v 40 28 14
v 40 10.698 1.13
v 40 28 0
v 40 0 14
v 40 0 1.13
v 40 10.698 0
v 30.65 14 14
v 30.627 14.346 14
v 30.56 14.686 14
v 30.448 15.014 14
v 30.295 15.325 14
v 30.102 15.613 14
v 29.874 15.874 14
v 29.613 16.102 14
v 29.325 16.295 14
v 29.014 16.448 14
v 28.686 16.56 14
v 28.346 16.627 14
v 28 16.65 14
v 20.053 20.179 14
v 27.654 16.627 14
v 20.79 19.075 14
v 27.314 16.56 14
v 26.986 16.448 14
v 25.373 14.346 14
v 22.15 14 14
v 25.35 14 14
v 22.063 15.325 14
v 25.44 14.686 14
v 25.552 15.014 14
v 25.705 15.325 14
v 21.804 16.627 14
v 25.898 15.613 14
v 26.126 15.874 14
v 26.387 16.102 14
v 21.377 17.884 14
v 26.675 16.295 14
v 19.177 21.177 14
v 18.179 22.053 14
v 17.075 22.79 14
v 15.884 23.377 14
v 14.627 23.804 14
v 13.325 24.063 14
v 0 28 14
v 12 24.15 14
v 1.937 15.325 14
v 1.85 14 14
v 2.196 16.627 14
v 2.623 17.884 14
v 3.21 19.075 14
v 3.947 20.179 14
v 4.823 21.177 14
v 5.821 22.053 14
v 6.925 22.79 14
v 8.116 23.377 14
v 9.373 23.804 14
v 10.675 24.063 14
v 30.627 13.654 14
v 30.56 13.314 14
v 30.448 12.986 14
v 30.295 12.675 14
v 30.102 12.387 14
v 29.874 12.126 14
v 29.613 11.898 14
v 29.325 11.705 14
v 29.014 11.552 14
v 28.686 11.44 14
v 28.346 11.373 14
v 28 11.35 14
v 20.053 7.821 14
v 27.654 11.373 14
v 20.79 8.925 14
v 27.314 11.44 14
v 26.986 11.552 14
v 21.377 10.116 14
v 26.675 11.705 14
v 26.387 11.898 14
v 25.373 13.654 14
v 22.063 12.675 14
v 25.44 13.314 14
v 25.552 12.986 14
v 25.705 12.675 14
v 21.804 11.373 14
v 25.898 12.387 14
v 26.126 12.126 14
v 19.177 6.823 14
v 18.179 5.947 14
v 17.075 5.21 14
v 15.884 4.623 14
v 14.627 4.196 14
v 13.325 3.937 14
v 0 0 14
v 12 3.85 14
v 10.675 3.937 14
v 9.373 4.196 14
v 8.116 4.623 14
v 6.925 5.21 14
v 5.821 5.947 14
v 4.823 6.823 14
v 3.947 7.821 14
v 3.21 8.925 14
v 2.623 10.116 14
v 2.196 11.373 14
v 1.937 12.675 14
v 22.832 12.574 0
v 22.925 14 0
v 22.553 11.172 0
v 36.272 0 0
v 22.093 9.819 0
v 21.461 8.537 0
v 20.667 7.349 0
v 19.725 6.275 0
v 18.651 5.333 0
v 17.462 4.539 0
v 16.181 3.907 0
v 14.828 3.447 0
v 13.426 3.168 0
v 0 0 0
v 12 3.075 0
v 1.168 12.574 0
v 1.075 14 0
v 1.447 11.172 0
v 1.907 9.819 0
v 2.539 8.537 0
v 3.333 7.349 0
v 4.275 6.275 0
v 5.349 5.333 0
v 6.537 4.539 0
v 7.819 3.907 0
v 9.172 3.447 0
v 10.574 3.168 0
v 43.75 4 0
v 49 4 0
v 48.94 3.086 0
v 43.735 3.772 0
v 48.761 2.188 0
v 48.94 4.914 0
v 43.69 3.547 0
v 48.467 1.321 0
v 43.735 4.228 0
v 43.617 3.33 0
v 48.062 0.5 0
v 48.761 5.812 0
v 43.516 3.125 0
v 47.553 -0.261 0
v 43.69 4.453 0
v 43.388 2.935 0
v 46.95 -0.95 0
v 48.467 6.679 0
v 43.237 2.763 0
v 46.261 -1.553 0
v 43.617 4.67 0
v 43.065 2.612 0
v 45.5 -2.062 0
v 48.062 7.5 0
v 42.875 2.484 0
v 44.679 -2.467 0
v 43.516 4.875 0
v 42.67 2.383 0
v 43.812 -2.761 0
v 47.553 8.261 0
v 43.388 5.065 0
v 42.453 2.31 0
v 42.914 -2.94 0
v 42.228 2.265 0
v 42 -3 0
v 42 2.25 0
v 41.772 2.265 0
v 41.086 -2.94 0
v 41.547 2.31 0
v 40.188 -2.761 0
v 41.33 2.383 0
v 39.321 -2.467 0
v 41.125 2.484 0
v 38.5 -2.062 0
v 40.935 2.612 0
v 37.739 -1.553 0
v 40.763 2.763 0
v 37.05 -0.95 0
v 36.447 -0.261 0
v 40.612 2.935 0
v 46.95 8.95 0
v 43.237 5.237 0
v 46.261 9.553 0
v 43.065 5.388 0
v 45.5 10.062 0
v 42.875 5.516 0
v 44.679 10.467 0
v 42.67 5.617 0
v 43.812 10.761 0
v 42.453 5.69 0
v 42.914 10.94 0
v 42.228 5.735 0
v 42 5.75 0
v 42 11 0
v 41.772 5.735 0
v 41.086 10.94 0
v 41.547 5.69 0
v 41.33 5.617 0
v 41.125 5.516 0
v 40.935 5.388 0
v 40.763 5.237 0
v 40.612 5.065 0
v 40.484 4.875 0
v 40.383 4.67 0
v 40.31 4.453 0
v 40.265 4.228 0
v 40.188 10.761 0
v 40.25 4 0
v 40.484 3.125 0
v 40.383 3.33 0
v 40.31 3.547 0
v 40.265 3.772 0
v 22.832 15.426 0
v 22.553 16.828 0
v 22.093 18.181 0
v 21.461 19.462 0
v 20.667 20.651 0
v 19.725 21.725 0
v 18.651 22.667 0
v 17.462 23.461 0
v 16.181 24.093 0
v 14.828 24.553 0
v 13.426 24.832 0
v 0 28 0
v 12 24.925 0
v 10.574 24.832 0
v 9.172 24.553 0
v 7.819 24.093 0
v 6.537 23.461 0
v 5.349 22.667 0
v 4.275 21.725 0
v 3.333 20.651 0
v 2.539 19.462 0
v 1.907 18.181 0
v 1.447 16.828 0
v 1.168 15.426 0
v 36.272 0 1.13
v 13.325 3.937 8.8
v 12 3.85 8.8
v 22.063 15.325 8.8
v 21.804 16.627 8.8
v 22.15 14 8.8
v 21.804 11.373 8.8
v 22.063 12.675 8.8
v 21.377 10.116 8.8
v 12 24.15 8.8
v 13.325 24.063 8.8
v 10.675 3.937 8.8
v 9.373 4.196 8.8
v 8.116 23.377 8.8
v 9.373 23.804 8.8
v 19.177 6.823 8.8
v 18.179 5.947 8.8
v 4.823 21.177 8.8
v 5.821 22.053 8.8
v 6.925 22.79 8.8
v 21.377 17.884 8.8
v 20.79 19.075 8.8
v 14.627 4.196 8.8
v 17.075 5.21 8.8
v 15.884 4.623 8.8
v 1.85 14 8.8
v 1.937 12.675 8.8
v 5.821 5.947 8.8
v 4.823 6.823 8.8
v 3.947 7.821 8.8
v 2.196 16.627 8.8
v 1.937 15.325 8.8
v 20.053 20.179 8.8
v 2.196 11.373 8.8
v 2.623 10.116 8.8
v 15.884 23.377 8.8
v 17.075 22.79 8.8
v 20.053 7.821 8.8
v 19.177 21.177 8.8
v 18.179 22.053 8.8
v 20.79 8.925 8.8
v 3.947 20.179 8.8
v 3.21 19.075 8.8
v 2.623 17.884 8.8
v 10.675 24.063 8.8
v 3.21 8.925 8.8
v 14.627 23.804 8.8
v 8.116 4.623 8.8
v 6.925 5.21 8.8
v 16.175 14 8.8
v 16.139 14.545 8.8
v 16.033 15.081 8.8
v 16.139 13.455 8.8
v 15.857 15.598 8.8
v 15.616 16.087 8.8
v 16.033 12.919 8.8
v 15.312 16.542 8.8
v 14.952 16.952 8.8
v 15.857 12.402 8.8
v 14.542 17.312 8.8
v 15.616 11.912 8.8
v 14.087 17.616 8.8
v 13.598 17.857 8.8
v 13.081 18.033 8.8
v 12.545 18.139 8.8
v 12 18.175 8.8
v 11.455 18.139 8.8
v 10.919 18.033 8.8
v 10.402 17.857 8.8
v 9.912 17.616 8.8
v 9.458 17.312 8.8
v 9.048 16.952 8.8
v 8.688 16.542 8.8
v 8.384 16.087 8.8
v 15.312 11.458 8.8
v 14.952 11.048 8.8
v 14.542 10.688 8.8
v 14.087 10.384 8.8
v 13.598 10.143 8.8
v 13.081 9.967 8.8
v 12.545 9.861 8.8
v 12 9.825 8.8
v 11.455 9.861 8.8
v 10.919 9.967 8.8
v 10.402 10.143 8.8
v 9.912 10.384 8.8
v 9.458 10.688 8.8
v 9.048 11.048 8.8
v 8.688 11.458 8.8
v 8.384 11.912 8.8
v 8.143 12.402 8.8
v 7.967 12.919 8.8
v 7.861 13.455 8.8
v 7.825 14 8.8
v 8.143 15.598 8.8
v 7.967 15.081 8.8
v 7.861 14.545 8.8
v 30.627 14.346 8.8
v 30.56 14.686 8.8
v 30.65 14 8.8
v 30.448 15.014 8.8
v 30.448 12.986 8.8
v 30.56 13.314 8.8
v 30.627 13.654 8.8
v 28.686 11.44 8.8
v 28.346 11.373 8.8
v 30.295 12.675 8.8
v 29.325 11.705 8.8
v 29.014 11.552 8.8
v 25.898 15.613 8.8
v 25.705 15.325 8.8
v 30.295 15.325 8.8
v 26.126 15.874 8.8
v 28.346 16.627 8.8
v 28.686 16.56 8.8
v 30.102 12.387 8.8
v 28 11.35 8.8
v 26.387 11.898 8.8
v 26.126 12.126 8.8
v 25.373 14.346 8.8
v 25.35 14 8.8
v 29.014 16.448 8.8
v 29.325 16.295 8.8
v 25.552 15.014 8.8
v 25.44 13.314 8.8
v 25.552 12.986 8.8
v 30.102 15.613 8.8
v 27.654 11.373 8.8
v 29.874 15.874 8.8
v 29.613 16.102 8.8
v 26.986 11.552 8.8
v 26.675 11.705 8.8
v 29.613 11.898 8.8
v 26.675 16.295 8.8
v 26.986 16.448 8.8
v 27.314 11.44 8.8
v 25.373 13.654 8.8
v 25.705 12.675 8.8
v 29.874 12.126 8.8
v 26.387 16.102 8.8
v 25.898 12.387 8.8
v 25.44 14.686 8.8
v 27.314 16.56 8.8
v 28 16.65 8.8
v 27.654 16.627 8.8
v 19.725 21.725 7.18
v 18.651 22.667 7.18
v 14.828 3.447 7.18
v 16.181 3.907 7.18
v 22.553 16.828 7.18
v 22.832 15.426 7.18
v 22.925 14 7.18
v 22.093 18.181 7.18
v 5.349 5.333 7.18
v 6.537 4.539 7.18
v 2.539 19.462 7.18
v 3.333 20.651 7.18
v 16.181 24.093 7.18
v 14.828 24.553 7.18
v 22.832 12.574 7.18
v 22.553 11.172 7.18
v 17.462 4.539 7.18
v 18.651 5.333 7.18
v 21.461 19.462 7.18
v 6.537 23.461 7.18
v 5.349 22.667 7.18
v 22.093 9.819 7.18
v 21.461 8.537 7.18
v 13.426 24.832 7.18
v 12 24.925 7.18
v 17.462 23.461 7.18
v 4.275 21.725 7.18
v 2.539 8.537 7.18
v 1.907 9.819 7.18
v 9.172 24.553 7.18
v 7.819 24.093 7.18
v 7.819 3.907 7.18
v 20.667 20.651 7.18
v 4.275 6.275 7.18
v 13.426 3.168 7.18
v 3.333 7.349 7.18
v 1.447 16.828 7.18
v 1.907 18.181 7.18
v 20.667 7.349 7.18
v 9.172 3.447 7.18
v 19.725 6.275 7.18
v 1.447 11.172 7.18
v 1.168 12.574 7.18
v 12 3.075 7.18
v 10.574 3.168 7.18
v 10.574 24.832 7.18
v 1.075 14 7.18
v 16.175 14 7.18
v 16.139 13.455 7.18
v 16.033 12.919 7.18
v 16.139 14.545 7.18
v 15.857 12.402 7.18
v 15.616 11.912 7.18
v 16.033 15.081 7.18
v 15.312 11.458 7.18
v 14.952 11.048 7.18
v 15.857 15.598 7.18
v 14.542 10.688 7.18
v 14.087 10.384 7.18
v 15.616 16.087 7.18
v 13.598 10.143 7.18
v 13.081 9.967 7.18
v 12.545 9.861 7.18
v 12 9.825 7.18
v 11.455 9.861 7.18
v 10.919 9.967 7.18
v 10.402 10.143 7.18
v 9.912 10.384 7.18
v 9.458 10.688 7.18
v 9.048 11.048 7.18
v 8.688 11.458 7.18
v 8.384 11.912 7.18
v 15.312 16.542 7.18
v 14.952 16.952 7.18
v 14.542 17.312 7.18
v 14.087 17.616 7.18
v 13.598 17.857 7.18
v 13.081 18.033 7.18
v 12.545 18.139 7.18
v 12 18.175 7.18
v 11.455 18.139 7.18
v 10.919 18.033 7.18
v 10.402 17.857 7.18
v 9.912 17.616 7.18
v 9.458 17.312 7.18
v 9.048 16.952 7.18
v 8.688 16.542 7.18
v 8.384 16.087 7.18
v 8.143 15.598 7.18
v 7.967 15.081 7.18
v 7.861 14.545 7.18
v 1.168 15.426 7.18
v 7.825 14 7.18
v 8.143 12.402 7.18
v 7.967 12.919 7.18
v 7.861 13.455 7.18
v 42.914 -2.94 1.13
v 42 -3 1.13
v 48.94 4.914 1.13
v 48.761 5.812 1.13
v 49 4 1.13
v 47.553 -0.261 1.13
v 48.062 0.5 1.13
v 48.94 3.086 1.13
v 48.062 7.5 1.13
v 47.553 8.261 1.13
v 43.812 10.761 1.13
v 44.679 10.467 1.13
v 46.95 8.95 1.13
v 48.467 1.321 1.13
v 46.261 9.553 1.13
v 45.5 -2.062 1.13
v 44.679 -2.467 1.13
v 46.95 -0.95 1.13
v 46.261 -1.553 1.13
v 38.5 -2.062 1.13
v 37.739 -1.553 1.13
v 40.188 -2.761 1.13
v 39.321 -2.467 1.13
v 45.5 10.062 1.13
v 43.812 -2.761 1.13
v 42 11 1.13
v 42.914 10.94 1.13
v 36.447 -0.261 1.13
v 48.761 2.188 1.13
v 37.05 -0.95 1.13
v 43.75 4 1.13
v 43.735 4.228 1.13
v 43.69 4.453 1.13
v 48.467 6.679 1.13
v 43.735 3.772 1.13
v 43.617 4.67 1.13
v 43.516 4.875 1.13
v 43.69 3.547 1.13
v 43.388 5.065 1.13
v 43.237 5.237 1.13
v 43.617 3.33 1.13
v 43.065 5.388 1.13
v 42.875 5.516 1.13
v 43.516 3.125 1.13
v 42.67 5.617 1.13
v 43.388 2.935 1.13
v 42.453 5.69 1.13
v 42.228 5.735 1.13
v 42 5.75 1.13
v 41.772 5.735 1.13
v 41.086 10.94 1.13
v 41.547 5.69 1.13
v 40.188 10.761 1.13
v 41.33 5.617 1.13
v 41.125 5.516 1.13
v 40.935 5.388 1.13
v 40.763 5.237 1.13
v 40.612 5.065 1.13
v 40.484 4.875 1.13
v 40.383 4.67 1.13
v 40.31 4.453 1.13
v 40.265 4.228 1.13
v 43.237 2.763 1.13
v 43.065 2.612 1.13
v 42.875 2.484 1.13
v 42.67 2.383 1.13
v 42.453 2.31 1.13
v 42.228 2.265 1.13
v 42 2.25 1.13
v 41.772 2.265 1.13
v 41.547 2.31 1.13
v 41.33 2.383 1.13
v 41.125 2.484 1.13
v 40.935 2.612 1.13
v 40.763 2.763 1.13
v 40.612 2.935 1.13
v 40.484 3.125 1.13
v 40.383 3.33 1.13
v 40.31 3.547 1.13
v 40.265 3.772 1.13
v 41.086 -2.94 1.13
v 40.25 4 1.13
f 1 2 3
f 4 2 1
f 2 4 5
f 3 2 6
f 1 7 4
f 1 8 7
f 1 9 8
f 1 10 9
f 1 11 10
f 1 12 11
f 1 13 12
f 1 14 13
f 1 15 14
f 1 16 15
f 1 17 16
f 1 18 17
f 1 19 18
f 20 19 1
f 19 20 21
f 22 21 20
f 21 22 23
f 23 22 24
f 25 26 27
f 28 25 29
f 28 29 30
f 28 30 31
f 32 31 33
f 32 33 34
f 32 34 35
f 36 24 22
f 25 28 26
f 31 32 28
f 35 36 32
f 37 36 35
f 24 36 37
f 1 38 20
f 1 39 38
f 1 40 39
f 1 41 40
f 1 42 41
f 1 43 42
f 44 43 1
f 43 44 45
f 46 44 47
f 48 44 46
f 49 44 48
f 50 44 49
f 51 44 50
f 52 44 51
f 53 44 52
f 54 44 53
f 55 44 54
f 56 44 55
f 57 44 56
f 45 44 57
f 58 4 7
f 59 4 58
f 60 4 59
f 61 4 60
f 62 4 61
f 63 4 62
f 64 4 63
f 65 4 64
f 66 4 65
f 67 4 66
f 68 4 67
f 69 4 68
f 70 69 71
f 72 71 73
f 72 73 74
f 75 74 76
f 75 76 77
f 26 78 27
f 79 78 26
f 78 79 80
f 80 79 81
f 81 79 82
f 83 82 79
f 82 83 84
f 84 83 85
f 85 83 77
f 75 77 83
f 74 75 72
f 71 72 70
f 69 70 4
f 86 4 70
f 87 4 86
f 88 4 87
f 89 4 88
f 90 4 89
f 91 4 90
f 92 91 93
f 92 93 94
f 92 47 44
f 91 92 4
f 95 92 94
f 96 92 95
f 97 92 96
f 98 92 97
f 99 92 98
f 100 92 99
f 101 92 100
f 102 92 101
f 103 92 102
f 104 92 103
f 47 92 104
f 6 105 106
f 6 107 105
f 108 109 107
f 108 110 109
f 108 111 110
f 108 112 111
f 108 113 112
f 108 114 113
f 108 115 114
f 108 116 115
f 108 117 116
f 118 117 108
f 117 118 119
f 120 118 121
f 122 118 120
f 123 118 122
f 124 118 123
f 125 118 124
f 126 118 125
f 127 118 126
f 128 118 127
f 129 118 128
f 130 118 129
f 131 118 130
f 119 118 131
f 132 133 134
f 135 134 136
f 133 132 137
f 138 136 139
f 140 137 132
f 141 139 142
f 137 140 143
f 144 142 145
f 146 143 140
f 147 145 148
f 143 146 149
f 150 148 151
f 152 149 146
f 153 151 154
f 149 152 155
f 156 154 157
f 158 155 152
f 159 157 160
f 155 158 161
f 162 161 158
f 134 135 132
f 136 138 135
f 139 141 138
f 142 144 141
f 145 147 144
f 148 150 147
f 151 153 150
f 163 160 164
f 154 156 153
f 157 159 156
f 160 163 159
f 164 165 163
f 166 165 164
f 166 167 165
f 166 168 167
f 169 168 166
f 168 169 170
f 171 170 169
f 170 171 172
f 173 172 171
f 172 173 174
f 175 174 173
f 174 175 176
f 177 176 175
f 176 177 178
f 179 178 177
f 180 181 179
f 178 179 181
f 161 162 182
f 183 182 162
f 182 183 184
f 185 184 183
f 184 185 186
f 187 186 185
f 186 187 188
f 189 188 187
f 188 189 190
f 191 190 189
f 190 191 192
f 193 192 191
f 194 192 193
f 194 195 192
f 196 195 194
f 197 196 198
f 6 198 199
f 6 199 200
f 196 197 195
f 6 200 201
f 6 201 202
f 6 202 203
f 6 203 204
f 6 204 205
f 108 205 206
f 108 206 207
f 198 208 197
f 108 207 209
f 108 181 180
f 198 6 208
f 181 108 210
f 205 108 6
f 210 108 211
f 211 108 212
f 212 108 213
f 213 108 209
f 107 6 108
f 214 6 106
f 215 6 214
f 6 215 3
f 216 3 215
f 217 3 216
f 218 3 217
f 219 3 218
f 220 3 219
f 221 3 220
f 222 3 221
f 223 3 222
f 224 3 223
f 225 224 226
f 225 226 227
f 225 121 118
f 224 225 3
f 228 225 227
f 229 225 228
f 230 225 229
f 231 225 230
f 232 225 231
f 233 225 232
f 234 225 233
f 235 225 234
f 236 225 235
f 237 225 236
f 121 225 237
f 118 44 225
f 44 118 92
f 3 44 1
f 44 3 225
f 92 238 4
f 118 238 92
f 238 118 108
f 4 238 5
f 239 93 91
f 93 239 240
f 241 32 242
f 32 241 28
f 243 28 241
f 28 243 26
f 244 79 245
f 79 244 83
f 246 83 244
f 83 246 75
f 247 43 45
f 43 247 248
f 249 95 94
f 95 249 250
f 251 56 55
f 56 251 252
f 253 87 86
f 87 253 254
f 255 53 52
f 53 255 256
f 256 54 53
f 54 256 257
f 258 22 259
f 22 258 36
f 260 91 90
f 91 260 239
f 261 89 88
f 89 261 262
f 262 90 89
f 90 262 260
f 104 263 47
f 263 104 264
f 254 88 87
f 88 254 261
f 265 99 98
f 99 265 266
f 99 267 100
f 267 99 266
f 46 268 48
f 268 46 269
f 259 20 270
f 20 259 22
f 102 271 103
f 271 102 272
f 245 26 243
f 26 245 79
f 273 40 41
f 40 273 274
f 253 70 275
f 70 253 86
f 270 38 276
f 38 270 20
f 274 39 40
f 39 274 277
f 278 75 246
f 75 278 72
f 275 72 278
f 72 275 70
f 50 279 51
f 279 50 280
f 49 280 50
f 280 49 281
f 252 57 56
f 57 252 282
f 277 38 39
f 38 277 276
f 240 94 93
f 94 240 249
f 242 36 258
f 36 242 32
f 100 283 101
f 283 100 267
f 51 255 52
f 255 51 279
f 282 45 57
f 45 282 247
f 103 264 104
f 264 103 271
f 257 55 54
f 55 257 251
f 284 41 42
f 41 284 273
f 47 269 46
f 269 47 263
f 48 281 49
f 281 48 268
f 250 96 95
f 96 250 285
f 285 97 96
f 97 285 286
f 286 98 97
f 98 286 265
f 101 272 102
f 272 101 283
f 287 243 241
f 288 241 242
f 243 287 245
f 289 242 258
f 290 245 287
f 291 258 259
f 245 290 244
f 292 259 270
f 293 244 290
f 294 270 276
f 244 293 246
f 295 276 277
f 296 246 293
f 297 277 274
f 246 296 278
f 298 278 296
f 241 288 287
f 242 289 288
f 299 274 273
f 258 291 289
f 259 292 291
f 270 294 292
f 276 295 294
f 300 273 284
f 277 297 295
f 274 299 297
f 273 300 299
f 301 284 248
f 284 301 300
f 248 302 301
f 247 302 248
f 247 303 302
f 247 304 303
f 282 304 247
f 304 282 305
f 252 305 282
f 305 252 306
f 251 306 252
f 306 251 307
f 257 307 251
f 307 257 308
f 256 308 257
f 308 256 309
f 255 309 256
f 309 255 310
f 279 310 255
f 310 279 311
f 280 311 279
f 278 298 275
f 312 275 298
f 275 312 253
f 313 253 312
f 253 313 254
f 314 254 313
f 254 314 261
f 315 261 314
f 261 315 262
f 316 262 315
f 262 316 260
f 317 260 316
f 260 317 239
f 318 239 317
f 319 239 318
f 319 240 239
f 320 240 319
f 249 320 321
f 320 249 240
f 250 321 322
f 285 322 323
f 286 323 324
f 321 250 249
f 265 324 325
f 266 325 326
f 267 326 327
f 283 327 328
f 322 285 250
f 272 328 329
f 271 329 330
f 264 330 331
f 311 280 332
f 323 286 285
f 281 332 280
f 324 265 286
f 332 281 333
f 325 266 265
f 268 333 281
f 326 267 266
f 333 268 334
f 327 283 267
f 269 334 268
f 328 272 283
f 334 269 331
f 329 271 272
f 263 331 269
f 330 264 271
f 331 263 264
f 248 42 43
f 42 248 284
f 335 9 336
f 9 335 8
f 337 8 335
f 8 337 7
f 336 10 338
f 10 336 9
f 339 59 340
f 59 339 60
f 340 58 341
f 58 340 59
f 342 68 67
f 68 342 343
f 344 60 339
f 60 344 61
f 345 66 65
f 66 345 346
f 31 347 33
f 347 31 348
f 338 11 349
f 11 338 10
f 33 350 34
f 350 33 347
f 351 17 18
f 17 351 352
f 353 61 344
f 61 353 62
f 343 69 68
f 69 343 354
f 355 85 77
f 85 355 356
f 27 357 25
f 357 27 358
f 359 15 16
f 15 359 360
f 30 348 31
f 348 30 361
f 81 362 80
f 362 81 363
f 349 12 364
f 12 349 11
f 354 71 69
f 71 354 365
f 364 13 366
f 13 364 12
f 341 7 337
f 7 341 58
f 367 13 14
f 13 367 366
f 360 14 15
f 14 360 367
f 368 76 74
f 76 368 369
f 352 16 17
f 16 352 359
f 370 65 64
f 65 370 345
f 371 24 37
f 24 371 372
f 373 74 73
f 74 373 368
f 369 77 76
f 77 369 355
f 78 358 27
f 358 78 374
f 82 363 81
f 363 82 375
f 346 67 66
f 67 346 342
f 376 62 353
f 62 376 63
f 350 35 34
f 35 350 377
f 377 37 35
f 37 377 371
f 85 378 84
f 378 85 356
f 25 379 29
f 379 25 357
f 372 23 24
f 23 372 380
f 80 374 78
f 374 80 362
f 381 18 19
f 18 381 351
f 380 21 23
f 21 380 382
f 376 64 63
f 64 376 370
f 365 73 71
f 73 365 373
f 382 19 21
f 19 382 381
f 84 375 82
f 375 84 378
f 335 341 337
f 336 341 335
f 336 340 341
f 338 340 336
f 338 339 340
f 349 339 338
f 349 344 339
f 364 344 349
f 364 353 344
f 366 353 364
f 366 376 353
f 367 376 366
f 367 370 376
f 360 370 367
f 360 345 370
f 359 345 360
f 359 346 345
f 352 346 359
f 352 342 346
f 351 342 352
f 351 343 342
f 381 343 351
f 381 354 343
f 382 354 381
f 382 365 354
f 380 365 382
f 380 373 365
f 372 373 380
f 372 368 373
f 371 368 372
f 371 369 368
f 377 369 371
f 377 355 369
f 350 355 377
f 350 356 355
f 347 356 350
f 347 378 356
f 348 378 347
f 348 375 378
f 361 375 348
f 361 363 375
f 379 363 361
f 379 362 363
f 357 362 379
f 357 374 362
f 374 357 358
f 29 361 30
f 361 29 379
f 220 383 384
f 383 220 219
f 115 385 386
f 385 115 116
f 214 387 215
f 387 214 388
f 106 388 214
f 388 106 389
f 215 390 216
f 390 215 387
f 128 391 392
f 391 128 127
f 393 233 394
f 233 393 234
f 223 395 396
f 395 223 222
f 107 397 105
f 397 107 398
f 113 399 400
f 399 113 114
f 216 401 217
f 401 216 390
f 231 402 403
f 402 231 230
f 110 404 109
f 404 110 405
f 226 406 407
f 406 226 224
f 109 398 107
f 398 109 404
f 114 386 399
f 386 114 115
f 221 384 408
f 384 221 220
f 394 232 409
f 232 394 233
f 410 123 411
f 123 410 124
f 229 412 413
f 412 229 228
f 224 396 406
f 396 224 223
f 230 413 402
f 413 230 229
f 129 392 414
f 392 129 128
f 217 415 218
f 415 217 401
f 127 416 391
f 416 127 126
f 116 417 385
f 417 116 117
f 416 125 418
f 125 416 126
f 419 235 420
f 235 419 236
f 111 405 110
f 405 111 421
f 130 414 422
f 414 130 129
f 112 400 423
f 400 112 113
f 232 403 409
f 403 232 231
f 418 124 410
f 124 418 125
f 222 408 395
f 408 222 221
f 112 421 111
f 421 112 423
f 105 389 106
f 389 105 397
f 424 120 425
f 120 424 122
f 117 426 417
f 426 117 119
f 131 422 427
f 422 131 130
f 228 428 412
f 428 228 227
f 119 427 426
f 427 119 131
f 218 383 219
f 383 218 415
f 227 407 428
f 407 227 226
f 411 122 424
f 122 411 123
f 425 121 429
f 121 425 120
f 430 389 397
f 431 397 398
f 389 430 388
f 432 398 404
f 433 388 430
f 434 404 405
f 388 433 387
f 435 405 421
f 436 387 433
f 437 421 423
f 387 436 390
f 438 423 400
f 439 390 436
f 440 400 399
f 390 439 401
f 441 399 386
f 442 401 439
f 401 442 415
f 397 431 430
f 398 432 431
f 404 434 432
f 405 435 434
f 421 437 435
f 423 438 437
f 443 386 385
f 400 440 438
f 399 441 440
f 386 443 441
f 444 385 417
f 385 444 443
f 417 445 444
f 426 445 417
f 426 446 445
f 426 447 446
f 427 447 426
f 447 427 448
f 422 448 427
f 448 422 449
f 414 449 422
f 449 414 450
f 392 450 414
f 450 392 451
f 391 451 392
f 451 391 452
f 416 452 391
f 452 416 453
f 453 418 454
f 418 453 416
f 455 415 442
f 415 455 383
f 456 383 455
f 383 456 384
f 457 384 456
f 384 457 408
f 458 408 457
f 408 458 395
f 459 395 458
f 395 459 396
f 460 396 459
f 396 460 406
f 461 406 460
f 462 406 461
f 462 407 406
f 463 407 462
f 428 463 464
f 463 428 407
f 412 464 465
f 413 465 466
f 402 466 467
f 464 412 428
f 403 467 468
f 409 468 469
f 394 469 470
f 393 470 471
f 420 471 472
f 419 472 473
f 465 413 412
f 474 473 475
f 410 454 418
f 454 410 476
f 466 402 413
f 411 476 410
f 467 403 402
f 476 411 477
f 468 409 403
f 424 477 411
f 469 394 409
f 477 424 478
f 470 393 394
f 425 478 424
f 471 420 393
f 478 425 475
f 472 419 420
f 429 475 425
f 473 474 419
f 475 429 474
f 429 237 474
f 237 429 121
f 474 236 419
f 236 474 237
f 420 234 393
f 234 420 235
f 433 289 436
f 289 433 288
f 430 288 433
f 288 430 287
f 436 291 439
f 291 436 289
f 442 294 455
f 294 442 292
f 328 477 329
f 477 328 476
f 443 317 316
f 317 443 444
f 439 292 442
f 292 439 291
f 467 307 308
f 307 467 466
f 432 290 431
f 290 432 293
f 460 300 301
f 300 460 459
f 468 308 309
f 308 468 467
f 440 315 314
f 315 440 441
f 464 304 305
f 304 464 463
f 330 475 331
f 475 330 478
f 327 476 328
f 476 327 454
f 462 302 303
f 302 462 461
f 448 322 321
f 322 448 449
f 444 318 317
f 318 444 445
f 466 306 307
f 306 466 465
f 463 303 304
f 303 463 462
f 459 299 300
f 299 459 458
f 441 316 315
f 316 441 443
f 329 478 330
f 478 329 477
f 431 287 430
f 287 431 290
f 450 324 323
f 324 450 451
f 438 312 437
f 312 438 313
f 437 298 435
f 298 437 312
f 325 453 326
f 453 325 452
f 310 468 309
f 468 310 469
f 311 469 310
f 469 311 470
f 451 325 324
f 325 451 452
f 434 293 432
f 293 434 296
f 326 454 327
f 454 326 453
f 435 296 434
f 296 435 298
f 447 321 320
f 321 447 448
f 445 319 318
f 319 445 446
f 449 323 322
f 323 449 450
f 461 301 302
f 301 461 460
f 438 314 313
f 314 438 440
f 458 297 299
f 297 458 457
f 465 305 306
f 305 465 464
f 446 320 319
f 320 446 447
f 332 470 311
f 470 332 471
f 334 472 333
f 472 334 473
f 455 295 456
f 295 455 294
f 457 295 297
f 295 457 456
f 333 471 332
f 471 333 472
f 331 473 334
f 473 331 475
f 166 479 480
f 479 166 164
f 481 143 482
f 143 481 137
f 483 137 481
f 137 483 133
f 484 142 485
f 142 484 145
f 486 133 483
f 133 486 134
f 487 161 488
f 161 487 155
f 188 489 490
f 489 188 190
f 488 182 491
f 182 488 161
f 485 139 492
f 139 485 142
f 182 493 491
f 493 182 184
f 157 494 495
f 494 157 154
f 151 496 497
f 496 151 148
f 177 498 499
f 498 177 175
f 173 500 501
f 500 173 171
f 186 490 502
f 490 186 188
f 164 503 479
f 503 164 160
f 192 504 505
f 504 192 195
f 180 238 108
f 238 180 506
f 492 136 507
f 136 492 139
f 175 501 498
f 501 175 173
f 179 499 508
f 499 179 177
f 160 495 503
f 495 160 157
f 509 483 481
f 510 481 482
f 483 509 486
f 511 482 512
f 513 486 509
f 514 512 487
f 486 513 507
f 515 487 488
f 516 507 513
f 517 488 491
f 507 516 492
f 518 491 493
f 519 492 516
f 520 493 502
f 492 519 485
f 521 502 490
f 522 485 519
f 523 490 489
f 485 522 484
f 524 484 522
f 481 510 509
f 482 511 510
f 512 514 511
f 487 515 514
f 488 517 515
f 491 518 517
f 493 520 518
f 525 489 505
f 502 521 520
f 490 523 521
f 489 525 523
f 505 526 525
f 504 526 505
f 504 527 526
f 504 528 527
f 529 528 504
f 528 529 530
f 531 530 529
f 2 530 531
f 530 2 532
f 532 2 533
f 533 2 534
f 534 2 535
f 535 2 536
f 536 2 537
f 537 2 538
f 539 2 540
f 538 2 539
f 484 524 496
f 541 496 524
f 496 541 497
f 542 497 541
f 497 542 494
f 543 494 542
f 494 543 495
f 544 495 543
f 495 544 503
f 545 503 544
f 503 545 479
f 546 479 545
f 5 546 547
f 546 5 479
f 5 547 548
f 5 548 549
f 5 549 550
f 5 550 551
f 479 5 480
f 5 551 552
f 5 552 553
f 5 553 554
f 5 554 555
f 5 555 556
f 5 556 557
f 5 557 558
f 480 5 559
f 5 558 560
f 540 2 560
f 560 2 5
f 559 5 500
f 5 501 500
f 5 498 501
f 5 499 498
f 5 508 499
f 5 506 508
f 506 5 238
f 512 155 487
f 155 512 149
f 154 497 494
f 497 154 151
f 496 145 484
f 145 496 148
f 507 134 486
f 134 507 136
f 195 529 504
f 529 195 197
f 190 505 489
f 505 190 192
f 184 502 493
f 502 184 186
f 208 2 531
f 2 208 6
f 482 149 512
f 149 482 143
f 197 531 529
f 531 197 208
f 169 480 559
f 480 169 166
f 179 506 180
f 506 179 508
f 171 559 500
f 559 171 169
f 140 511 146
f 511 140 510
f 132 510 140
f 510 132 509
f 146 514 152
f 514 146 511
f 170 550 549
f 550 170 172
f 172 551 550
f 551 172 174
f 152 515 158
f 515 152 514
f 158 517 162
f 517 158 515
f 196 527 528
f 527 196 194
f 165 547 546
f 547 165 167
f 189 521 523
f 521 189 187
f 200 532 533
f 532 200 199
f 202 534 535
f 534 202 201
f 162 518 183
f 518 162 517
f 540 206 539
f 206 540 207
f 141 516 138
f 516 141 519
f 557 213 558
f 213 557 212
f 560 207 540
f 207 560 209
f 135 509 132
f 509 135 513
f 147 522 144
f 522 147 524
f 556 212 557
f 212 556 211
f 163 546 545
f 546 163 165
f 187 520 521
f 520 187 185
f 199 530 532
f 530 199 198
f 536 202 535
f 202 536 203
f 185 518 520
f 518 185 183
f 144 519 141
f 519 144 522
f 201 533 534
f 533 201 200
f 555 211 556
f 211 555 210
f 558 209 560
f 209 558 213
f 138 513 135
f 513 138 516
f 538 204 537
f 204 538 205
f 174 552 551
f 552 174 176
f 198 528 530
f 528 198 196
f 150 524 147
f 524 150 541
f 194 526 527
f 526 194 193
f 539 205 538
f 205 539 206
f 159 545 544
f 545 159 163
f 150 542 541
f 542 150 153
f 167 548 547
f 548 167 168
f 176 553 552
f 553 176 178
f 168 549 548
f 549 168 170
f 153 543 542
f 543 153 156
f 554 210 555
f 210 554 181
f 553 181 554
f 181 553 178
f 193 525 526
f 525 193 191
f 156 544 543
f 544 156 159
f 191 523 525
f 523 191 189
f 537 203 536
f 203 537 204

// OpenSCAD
// file: parameters.scad
// =============================================================================
// Gen-AM Vernier flux-claw hyper — WOUND-AWARE (HARD GATE)
// Dual-rotor vernier: Rotor B +22.5° vs 12-slot stator; Ø5 flux claws
// =============================================================================

wire_awg            = 26;
wire_od             = 0.45;
turns               = 185;      // +10 vs Gen-AJ 175
fill                = 0.70;
layers_per_face     = 2;
wind_build_axial    = layers_per_face * wire_od * fill;   // 0.63 mm
wind_build_radial   = 3 * wire_od * fill;                 // 0.945 mm

coil_id_r           = 16.5;
coil_od_r           = 63.5;
span_deg            = 25.0;
former_web          = 1.40;     // thinner vs AJ 1.50
flange_t            = 0.60;
wall                = 1.2;
slot_w              = 2.4;
mount_hole          = 3.5;
tab_len             = 7.0;

former_bare_h       = former_web + 2 * flange_t;            // 2.60 mm
coil_envelope_h     = former_bare_h + 2 * wind_build_axial; // 3.86 mm

run_clear           = 0.50;
gap_spacer_h        = run_clear + wind_build_axial;         // 1.13 mm
m2m                 = coil_envelope_h + 2 * run_clear;      // 4.86 mm

coil_stations       = 12;
bay_r_in            = coil_id_r - 2.0 - wind_build_radial;
bay_r_out           = coil_od_r + 2.0 + wind_build_radial;
bay_span            = span_deg + 4.0;
bay_offset          = 2.0;
stator_thick        = former_bare_h;
stator_od           = 160.0;
shaft_clear_stator  = 34.0;
coil_mount_r        = 26.0;

large_pocket_d      = 20.3;
small_pocket_d      = 5.3;
pocket_h            = 5.2;
large_n             = 8;
R_large             = 40.5;     // closer to copper centroid vs AJ R=42
R_small_inner       = 26.0;
R_small_mid         = 40.5;
R_small_outer       = 56.0;
carrier_od          = 156.0;
carrier_thick       = 7.5;
hub_h               = 10.0;
hub_od              = 30.0;
rotor_b_offset_deg  = 22.5;     // vernier offset vs 12-slot stator

shaft_bore          = 8.35;
bearing_d           = 21.85;
bearing_h           = 7.2;
m3_clear            = 3.5;
bolt_r_inner        = 36.0;
bolt_n_inner        = 6;
flange_bolt_r       = 72.0;
flange_bolt_n       = 6;
brace_r             = 68.0;
brace_d             = 4.3;
brace_n             = 4;

spacer_pad_od       = 14.0;
spacer_pad_id       = m3_clear;
endbell_od          = 160.0;
endbell_thick       = 8.0;
endbell_shaft_clear = 10.0;

$fn = 64;
// main file
// Gen-AM fit coupon — magnet pockets + 608 + spacer height
include <parameters.scad>;
$fn = 48;
block_w = 40; block_d = 28; block_h = 14;
difference() {
    cube([block_w, block_d, block_h]);
    translate([12, block_d/2, block_h - pocket_h])
        cylinder(d=large_pocket_d, h=pocket_h + 0.2);
    translate([28, block_d/2, block_h - pocket_h])
        cylinder(d=small_pocket_d, h=pocket_h + 0.2);
    translate([12, block_d/2, -0.02])
        cylinder(d=bearing_d, h=bearing_h);
    translate([12, block_d/2, -0.1])
        cylinder(d=shaft_bore, h=block_h + 1);
}
translate([block_w + 2, 4, 0])
    difference() {
        cylinder(d=spacer_pad_od, h=gap_spacer_h);
        translate([0, 0, -0.1]) cylinder(d=spacer_pad_id, h=gap_spacer_h + 0.2);
    }
